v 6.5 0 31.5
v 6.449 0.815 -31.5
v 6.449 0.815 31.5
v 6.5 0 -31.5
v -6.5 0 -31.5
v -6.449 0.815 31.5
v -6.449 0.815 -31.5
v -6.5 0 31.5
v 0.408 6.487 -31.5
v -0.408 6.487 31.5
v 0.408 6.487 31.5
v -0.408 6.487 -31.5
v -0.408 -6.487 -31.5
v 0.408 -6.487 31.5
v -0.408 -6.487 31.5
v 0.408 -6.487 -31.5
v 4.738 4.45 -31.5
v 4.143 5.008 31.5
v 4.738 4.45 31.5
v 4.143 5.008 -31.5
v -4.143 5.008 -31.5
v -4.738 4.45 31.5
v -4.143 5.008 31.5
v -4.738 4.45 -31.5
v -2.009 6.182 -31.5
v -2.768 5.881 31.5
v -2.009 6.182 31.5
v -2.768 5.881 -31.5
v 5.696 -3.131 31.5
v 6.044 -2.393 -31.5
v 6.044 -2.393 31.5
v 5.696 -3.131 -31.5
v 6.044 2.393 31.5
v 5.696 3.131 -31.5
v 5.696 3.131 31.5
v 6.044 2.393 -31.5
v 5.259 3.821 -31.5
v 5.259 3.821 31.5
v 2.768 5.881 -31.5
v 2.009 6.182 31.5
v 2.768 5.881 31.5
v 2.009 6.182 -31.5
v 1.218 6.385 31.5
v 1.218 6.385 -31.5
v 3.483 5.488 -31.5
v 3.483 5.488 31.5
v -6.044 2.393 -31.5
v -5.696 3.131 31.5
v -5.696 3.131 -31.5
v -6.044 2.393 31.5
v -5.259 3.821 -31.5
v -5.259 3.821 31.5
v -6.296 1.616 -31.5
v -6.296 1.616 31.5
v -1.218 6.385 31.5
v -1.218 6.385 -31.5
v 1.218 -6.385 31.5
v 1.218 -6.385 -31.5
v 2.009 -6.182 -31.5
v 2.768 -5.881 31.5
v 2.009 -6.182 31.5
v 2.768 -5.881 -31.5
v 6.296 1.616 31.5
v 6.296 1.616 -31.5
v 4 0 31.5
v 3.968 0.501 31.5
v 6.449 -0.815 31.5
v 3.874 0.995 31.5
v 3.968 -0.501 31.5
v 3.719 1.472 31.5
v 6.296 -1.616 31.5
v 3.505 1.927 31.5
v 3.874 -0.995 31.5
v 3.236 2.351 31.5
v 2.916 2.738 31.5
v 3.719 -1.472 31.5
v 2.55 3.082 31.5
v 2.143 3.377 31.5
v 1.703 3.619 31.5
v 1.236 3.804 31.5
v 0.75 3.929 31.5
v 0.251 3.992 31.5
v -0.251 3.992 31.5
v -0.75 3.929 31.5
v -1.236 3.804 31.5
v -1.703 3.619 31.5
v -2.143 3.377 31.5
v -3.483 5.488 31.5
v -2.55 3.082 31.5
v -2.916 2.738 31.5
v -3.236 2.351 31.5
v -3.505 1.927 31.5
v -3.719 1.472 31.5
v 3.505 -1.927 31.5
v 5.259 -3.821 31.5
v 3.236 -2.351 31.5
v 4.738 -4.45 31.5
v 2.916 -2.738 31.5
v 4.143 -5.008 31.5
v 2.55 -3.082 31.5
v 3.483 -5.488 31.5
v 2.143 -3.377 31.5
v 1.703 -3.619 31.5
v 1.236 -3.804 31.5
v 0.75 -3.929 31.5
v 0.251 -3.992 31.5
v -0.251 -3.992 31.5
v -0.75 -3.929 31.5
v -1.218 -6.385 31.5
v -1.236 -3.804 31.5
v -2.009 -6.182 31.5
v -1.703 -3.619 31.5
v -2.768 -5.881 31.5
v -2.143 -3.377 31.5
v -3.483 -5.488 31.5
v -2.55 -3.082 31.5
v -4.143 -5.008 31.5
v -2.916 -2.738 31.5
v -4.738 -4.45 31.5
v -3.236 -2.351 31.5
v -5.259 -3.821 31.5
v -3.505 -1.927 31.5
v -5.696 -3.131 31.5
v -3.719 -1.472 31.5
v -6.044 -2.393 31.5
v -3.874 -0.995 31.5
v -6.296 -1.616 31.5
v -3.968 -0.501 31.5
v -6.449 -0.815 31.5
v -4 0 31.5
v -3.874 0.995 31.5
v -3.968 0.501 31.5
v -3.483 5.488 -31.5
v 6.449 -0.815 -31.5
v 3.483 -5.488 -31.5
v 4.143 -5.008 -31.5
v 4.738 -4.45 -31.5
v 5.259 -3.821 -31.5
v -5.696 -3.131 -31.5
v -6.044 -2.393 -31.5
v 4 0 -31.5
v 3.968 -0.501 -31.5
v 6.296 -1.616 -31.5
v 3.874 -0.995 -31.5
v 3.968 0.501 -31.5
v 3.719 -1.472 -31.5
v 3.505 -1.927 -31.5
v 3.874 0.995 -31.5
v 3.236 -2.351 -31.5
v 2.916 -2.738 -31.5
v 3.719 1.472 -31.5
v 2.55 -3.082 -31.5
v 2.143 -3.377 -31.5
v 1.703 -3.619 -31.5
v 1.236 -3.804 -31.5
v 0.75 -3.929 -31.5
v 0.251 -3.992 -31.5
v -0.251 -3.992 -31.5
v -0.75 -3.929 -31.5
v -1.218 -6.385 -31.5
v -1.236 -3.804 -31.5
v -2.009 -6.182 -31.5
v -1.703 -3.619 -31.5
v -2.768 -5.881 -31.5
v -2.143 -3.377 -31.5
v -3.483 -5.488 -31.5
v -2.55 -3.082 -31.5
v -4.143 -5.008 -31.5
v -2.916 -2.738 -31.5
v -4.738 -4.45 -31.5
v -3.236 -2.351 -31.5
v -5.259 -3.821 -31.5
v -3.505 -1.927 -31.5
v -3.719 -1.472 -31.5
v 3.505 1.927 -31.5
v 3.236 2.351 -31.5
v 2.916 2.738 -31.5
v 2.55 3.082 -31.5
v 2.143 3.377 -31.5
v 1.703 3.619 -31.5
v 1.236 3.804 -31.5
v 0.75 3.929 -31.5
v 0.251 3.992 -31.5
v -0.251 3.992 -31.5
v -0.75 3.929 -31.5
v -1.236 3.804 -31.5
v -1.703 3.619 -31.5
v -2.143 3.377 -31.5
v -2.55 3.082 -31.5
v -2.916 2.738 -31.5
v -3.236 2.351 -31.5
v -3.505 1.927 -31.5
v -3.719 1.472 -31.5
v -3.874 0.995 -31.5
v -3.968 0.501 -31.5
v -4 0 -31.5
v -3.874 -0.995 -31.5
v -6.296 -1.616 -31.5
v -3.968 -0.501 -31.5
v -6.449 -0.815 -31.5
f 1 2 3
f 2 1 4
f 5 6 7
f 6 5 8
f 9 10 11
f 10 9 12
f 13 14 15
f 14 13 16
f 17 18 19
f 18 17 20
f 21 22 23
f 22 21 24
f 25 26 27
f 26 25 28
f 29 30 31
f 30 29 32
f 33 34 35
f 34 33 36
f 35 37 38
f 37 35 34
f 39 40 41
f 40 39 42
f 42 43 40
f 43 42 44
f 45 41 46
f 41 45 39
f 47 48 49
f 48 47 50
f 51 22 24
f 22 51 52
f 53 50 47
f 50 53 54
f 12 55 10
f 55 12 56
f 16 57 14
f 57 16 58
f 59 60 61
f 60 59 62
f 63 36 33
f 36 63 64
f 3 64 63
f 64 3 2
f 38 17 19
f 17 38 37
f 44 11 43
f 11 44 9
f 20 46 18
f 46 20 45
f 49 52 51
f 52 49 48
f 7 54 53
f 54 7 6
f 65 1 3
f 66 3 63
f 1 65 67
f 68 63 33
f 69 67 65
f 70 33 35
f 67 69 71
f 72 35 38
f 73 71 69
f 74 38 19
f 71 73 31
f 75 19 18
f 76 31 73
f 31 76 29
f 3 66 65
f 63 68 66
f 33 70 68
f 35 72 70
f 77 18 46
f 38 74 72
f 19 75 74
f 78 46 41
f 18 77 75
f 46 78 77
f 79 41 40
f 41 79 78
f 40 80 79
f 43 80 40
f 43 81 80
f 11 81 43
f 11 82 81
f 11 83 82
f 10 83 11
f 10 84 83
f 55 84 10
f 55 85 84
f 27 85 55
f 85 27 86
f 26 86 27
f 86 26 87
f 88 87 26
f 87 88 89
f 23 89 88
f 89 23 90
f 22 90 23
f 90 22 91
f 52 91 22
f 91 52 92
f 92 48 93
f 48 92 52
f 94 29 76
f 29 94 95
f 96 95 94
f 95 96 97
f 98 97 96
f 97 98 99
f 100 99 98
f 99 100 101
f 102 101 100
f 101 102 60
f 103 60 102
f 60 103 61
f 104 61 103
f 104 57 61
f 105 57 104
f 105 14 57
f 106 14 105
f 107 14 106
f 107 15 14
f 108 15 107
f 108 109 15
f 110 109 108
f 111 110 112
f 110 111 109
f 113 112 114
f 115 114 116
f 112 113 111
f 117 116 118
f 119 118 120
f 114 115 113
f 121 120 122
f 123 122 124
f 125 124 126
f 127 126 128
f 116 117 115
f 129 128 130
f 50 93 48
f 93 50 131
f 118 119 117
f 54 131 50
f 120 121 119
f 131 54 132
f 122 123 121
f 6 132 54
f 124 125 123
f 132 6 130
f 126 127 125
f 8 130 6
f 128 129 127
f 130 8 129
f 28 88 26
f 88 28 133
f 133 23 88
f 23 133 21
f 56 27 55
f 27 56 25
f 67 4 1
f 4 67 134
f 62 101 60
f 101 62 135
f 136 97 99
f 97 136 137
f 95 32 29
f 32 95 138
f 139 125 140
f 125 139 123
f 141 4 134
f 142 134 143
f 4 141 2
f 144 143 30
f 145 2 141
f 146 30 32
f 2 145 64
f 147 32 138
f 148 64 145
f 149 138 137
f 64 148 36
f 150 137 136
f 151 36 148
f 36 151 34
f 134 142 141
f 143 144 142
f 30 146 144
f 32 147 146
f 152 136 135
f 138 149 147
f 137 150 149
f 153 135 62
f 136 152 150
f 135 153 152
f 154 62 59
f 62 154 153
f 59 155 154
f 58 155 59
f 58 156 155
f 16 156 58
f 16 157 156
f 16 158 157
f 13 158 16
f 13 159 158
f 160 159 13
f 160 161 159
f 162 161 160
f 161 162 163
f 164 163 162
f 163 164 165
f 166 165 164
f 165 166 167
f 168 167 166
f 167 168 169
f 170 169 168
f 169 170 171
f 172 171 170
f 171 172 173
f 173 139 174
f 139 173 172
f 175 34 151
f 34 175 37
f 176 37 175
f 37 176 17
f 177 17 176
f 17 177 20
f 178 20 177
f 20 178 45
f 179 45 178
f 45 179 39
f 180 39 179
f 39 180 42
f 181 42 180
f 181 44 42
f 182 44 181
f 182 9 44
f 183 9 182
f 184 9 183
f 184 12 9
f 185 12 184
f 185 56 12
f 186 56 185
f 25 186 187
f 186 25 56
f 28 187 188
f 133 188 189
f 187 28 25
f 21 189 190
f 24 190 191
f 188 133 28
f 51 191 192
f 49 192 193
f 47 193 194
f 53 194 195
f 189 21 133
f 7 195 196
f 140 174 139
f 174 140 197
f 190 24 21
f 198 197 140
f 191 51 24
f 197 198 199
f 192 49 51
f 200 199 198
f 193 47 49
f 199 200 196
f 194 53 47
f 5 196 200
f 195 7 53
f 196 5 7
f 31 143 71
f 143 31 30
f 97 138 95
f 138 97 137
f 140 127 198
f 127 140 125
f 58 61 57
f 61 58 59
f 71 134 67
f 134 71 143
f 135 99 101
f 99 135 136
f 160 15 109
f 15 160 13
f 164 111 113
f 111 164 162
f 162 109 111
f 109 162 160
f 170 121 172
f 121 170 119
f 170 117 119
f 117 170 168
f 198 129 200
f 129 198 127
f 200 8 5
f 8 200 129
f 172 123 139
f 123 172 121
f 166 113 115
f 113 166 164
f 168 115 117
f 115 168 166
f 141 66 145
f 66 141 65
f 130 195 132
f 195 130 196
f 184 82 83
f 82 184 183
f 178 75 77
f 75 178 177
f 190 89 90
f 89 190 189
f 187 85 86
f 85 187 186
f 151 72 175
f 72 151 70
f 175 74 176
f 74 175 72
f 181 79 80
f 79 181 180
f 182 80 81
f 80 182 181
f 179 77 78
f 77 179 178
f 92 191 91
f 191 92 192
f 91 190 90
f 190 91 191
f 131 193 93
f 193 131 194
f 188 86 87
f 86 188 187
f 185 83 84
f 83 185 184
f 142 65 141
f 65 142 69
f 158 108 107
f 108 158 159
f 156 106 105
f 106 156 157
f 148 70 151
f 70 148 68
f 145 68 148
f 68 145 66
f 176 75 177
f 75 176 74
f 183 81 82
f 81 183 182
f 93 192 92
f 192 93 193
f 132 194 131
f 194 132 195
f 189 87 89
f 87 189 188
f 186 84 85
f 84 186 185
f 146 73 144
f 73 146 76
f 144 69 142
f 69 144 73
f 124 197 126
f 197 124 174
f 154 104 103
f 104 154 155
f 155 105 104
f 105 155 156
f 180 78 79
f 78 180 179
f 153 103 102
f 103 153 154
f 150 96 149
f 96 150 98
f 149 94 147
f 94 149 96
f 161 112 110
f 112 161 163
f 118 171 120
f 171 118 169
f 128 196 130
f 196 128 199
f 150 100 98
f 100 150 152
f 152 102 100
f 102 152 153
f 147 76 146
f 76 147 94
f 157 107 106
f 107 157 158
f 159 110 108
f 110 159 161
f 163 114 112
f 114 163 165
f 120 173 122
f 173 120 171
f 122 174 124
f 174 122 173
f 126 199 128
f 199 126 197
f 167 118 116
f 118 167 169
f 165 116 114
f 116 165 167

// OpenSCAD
$fn = 50;


difference() {
	union() {
		translate(v = [0, 0, -31.5000000000]) {
			cylinder(h = 63, r = 6.5000000000);
		}
	}
	union() {
		translate(v = [0, 0, -100.0000000000]) {
			cylinder(h = 200, r = 4);
		}
	}
}
